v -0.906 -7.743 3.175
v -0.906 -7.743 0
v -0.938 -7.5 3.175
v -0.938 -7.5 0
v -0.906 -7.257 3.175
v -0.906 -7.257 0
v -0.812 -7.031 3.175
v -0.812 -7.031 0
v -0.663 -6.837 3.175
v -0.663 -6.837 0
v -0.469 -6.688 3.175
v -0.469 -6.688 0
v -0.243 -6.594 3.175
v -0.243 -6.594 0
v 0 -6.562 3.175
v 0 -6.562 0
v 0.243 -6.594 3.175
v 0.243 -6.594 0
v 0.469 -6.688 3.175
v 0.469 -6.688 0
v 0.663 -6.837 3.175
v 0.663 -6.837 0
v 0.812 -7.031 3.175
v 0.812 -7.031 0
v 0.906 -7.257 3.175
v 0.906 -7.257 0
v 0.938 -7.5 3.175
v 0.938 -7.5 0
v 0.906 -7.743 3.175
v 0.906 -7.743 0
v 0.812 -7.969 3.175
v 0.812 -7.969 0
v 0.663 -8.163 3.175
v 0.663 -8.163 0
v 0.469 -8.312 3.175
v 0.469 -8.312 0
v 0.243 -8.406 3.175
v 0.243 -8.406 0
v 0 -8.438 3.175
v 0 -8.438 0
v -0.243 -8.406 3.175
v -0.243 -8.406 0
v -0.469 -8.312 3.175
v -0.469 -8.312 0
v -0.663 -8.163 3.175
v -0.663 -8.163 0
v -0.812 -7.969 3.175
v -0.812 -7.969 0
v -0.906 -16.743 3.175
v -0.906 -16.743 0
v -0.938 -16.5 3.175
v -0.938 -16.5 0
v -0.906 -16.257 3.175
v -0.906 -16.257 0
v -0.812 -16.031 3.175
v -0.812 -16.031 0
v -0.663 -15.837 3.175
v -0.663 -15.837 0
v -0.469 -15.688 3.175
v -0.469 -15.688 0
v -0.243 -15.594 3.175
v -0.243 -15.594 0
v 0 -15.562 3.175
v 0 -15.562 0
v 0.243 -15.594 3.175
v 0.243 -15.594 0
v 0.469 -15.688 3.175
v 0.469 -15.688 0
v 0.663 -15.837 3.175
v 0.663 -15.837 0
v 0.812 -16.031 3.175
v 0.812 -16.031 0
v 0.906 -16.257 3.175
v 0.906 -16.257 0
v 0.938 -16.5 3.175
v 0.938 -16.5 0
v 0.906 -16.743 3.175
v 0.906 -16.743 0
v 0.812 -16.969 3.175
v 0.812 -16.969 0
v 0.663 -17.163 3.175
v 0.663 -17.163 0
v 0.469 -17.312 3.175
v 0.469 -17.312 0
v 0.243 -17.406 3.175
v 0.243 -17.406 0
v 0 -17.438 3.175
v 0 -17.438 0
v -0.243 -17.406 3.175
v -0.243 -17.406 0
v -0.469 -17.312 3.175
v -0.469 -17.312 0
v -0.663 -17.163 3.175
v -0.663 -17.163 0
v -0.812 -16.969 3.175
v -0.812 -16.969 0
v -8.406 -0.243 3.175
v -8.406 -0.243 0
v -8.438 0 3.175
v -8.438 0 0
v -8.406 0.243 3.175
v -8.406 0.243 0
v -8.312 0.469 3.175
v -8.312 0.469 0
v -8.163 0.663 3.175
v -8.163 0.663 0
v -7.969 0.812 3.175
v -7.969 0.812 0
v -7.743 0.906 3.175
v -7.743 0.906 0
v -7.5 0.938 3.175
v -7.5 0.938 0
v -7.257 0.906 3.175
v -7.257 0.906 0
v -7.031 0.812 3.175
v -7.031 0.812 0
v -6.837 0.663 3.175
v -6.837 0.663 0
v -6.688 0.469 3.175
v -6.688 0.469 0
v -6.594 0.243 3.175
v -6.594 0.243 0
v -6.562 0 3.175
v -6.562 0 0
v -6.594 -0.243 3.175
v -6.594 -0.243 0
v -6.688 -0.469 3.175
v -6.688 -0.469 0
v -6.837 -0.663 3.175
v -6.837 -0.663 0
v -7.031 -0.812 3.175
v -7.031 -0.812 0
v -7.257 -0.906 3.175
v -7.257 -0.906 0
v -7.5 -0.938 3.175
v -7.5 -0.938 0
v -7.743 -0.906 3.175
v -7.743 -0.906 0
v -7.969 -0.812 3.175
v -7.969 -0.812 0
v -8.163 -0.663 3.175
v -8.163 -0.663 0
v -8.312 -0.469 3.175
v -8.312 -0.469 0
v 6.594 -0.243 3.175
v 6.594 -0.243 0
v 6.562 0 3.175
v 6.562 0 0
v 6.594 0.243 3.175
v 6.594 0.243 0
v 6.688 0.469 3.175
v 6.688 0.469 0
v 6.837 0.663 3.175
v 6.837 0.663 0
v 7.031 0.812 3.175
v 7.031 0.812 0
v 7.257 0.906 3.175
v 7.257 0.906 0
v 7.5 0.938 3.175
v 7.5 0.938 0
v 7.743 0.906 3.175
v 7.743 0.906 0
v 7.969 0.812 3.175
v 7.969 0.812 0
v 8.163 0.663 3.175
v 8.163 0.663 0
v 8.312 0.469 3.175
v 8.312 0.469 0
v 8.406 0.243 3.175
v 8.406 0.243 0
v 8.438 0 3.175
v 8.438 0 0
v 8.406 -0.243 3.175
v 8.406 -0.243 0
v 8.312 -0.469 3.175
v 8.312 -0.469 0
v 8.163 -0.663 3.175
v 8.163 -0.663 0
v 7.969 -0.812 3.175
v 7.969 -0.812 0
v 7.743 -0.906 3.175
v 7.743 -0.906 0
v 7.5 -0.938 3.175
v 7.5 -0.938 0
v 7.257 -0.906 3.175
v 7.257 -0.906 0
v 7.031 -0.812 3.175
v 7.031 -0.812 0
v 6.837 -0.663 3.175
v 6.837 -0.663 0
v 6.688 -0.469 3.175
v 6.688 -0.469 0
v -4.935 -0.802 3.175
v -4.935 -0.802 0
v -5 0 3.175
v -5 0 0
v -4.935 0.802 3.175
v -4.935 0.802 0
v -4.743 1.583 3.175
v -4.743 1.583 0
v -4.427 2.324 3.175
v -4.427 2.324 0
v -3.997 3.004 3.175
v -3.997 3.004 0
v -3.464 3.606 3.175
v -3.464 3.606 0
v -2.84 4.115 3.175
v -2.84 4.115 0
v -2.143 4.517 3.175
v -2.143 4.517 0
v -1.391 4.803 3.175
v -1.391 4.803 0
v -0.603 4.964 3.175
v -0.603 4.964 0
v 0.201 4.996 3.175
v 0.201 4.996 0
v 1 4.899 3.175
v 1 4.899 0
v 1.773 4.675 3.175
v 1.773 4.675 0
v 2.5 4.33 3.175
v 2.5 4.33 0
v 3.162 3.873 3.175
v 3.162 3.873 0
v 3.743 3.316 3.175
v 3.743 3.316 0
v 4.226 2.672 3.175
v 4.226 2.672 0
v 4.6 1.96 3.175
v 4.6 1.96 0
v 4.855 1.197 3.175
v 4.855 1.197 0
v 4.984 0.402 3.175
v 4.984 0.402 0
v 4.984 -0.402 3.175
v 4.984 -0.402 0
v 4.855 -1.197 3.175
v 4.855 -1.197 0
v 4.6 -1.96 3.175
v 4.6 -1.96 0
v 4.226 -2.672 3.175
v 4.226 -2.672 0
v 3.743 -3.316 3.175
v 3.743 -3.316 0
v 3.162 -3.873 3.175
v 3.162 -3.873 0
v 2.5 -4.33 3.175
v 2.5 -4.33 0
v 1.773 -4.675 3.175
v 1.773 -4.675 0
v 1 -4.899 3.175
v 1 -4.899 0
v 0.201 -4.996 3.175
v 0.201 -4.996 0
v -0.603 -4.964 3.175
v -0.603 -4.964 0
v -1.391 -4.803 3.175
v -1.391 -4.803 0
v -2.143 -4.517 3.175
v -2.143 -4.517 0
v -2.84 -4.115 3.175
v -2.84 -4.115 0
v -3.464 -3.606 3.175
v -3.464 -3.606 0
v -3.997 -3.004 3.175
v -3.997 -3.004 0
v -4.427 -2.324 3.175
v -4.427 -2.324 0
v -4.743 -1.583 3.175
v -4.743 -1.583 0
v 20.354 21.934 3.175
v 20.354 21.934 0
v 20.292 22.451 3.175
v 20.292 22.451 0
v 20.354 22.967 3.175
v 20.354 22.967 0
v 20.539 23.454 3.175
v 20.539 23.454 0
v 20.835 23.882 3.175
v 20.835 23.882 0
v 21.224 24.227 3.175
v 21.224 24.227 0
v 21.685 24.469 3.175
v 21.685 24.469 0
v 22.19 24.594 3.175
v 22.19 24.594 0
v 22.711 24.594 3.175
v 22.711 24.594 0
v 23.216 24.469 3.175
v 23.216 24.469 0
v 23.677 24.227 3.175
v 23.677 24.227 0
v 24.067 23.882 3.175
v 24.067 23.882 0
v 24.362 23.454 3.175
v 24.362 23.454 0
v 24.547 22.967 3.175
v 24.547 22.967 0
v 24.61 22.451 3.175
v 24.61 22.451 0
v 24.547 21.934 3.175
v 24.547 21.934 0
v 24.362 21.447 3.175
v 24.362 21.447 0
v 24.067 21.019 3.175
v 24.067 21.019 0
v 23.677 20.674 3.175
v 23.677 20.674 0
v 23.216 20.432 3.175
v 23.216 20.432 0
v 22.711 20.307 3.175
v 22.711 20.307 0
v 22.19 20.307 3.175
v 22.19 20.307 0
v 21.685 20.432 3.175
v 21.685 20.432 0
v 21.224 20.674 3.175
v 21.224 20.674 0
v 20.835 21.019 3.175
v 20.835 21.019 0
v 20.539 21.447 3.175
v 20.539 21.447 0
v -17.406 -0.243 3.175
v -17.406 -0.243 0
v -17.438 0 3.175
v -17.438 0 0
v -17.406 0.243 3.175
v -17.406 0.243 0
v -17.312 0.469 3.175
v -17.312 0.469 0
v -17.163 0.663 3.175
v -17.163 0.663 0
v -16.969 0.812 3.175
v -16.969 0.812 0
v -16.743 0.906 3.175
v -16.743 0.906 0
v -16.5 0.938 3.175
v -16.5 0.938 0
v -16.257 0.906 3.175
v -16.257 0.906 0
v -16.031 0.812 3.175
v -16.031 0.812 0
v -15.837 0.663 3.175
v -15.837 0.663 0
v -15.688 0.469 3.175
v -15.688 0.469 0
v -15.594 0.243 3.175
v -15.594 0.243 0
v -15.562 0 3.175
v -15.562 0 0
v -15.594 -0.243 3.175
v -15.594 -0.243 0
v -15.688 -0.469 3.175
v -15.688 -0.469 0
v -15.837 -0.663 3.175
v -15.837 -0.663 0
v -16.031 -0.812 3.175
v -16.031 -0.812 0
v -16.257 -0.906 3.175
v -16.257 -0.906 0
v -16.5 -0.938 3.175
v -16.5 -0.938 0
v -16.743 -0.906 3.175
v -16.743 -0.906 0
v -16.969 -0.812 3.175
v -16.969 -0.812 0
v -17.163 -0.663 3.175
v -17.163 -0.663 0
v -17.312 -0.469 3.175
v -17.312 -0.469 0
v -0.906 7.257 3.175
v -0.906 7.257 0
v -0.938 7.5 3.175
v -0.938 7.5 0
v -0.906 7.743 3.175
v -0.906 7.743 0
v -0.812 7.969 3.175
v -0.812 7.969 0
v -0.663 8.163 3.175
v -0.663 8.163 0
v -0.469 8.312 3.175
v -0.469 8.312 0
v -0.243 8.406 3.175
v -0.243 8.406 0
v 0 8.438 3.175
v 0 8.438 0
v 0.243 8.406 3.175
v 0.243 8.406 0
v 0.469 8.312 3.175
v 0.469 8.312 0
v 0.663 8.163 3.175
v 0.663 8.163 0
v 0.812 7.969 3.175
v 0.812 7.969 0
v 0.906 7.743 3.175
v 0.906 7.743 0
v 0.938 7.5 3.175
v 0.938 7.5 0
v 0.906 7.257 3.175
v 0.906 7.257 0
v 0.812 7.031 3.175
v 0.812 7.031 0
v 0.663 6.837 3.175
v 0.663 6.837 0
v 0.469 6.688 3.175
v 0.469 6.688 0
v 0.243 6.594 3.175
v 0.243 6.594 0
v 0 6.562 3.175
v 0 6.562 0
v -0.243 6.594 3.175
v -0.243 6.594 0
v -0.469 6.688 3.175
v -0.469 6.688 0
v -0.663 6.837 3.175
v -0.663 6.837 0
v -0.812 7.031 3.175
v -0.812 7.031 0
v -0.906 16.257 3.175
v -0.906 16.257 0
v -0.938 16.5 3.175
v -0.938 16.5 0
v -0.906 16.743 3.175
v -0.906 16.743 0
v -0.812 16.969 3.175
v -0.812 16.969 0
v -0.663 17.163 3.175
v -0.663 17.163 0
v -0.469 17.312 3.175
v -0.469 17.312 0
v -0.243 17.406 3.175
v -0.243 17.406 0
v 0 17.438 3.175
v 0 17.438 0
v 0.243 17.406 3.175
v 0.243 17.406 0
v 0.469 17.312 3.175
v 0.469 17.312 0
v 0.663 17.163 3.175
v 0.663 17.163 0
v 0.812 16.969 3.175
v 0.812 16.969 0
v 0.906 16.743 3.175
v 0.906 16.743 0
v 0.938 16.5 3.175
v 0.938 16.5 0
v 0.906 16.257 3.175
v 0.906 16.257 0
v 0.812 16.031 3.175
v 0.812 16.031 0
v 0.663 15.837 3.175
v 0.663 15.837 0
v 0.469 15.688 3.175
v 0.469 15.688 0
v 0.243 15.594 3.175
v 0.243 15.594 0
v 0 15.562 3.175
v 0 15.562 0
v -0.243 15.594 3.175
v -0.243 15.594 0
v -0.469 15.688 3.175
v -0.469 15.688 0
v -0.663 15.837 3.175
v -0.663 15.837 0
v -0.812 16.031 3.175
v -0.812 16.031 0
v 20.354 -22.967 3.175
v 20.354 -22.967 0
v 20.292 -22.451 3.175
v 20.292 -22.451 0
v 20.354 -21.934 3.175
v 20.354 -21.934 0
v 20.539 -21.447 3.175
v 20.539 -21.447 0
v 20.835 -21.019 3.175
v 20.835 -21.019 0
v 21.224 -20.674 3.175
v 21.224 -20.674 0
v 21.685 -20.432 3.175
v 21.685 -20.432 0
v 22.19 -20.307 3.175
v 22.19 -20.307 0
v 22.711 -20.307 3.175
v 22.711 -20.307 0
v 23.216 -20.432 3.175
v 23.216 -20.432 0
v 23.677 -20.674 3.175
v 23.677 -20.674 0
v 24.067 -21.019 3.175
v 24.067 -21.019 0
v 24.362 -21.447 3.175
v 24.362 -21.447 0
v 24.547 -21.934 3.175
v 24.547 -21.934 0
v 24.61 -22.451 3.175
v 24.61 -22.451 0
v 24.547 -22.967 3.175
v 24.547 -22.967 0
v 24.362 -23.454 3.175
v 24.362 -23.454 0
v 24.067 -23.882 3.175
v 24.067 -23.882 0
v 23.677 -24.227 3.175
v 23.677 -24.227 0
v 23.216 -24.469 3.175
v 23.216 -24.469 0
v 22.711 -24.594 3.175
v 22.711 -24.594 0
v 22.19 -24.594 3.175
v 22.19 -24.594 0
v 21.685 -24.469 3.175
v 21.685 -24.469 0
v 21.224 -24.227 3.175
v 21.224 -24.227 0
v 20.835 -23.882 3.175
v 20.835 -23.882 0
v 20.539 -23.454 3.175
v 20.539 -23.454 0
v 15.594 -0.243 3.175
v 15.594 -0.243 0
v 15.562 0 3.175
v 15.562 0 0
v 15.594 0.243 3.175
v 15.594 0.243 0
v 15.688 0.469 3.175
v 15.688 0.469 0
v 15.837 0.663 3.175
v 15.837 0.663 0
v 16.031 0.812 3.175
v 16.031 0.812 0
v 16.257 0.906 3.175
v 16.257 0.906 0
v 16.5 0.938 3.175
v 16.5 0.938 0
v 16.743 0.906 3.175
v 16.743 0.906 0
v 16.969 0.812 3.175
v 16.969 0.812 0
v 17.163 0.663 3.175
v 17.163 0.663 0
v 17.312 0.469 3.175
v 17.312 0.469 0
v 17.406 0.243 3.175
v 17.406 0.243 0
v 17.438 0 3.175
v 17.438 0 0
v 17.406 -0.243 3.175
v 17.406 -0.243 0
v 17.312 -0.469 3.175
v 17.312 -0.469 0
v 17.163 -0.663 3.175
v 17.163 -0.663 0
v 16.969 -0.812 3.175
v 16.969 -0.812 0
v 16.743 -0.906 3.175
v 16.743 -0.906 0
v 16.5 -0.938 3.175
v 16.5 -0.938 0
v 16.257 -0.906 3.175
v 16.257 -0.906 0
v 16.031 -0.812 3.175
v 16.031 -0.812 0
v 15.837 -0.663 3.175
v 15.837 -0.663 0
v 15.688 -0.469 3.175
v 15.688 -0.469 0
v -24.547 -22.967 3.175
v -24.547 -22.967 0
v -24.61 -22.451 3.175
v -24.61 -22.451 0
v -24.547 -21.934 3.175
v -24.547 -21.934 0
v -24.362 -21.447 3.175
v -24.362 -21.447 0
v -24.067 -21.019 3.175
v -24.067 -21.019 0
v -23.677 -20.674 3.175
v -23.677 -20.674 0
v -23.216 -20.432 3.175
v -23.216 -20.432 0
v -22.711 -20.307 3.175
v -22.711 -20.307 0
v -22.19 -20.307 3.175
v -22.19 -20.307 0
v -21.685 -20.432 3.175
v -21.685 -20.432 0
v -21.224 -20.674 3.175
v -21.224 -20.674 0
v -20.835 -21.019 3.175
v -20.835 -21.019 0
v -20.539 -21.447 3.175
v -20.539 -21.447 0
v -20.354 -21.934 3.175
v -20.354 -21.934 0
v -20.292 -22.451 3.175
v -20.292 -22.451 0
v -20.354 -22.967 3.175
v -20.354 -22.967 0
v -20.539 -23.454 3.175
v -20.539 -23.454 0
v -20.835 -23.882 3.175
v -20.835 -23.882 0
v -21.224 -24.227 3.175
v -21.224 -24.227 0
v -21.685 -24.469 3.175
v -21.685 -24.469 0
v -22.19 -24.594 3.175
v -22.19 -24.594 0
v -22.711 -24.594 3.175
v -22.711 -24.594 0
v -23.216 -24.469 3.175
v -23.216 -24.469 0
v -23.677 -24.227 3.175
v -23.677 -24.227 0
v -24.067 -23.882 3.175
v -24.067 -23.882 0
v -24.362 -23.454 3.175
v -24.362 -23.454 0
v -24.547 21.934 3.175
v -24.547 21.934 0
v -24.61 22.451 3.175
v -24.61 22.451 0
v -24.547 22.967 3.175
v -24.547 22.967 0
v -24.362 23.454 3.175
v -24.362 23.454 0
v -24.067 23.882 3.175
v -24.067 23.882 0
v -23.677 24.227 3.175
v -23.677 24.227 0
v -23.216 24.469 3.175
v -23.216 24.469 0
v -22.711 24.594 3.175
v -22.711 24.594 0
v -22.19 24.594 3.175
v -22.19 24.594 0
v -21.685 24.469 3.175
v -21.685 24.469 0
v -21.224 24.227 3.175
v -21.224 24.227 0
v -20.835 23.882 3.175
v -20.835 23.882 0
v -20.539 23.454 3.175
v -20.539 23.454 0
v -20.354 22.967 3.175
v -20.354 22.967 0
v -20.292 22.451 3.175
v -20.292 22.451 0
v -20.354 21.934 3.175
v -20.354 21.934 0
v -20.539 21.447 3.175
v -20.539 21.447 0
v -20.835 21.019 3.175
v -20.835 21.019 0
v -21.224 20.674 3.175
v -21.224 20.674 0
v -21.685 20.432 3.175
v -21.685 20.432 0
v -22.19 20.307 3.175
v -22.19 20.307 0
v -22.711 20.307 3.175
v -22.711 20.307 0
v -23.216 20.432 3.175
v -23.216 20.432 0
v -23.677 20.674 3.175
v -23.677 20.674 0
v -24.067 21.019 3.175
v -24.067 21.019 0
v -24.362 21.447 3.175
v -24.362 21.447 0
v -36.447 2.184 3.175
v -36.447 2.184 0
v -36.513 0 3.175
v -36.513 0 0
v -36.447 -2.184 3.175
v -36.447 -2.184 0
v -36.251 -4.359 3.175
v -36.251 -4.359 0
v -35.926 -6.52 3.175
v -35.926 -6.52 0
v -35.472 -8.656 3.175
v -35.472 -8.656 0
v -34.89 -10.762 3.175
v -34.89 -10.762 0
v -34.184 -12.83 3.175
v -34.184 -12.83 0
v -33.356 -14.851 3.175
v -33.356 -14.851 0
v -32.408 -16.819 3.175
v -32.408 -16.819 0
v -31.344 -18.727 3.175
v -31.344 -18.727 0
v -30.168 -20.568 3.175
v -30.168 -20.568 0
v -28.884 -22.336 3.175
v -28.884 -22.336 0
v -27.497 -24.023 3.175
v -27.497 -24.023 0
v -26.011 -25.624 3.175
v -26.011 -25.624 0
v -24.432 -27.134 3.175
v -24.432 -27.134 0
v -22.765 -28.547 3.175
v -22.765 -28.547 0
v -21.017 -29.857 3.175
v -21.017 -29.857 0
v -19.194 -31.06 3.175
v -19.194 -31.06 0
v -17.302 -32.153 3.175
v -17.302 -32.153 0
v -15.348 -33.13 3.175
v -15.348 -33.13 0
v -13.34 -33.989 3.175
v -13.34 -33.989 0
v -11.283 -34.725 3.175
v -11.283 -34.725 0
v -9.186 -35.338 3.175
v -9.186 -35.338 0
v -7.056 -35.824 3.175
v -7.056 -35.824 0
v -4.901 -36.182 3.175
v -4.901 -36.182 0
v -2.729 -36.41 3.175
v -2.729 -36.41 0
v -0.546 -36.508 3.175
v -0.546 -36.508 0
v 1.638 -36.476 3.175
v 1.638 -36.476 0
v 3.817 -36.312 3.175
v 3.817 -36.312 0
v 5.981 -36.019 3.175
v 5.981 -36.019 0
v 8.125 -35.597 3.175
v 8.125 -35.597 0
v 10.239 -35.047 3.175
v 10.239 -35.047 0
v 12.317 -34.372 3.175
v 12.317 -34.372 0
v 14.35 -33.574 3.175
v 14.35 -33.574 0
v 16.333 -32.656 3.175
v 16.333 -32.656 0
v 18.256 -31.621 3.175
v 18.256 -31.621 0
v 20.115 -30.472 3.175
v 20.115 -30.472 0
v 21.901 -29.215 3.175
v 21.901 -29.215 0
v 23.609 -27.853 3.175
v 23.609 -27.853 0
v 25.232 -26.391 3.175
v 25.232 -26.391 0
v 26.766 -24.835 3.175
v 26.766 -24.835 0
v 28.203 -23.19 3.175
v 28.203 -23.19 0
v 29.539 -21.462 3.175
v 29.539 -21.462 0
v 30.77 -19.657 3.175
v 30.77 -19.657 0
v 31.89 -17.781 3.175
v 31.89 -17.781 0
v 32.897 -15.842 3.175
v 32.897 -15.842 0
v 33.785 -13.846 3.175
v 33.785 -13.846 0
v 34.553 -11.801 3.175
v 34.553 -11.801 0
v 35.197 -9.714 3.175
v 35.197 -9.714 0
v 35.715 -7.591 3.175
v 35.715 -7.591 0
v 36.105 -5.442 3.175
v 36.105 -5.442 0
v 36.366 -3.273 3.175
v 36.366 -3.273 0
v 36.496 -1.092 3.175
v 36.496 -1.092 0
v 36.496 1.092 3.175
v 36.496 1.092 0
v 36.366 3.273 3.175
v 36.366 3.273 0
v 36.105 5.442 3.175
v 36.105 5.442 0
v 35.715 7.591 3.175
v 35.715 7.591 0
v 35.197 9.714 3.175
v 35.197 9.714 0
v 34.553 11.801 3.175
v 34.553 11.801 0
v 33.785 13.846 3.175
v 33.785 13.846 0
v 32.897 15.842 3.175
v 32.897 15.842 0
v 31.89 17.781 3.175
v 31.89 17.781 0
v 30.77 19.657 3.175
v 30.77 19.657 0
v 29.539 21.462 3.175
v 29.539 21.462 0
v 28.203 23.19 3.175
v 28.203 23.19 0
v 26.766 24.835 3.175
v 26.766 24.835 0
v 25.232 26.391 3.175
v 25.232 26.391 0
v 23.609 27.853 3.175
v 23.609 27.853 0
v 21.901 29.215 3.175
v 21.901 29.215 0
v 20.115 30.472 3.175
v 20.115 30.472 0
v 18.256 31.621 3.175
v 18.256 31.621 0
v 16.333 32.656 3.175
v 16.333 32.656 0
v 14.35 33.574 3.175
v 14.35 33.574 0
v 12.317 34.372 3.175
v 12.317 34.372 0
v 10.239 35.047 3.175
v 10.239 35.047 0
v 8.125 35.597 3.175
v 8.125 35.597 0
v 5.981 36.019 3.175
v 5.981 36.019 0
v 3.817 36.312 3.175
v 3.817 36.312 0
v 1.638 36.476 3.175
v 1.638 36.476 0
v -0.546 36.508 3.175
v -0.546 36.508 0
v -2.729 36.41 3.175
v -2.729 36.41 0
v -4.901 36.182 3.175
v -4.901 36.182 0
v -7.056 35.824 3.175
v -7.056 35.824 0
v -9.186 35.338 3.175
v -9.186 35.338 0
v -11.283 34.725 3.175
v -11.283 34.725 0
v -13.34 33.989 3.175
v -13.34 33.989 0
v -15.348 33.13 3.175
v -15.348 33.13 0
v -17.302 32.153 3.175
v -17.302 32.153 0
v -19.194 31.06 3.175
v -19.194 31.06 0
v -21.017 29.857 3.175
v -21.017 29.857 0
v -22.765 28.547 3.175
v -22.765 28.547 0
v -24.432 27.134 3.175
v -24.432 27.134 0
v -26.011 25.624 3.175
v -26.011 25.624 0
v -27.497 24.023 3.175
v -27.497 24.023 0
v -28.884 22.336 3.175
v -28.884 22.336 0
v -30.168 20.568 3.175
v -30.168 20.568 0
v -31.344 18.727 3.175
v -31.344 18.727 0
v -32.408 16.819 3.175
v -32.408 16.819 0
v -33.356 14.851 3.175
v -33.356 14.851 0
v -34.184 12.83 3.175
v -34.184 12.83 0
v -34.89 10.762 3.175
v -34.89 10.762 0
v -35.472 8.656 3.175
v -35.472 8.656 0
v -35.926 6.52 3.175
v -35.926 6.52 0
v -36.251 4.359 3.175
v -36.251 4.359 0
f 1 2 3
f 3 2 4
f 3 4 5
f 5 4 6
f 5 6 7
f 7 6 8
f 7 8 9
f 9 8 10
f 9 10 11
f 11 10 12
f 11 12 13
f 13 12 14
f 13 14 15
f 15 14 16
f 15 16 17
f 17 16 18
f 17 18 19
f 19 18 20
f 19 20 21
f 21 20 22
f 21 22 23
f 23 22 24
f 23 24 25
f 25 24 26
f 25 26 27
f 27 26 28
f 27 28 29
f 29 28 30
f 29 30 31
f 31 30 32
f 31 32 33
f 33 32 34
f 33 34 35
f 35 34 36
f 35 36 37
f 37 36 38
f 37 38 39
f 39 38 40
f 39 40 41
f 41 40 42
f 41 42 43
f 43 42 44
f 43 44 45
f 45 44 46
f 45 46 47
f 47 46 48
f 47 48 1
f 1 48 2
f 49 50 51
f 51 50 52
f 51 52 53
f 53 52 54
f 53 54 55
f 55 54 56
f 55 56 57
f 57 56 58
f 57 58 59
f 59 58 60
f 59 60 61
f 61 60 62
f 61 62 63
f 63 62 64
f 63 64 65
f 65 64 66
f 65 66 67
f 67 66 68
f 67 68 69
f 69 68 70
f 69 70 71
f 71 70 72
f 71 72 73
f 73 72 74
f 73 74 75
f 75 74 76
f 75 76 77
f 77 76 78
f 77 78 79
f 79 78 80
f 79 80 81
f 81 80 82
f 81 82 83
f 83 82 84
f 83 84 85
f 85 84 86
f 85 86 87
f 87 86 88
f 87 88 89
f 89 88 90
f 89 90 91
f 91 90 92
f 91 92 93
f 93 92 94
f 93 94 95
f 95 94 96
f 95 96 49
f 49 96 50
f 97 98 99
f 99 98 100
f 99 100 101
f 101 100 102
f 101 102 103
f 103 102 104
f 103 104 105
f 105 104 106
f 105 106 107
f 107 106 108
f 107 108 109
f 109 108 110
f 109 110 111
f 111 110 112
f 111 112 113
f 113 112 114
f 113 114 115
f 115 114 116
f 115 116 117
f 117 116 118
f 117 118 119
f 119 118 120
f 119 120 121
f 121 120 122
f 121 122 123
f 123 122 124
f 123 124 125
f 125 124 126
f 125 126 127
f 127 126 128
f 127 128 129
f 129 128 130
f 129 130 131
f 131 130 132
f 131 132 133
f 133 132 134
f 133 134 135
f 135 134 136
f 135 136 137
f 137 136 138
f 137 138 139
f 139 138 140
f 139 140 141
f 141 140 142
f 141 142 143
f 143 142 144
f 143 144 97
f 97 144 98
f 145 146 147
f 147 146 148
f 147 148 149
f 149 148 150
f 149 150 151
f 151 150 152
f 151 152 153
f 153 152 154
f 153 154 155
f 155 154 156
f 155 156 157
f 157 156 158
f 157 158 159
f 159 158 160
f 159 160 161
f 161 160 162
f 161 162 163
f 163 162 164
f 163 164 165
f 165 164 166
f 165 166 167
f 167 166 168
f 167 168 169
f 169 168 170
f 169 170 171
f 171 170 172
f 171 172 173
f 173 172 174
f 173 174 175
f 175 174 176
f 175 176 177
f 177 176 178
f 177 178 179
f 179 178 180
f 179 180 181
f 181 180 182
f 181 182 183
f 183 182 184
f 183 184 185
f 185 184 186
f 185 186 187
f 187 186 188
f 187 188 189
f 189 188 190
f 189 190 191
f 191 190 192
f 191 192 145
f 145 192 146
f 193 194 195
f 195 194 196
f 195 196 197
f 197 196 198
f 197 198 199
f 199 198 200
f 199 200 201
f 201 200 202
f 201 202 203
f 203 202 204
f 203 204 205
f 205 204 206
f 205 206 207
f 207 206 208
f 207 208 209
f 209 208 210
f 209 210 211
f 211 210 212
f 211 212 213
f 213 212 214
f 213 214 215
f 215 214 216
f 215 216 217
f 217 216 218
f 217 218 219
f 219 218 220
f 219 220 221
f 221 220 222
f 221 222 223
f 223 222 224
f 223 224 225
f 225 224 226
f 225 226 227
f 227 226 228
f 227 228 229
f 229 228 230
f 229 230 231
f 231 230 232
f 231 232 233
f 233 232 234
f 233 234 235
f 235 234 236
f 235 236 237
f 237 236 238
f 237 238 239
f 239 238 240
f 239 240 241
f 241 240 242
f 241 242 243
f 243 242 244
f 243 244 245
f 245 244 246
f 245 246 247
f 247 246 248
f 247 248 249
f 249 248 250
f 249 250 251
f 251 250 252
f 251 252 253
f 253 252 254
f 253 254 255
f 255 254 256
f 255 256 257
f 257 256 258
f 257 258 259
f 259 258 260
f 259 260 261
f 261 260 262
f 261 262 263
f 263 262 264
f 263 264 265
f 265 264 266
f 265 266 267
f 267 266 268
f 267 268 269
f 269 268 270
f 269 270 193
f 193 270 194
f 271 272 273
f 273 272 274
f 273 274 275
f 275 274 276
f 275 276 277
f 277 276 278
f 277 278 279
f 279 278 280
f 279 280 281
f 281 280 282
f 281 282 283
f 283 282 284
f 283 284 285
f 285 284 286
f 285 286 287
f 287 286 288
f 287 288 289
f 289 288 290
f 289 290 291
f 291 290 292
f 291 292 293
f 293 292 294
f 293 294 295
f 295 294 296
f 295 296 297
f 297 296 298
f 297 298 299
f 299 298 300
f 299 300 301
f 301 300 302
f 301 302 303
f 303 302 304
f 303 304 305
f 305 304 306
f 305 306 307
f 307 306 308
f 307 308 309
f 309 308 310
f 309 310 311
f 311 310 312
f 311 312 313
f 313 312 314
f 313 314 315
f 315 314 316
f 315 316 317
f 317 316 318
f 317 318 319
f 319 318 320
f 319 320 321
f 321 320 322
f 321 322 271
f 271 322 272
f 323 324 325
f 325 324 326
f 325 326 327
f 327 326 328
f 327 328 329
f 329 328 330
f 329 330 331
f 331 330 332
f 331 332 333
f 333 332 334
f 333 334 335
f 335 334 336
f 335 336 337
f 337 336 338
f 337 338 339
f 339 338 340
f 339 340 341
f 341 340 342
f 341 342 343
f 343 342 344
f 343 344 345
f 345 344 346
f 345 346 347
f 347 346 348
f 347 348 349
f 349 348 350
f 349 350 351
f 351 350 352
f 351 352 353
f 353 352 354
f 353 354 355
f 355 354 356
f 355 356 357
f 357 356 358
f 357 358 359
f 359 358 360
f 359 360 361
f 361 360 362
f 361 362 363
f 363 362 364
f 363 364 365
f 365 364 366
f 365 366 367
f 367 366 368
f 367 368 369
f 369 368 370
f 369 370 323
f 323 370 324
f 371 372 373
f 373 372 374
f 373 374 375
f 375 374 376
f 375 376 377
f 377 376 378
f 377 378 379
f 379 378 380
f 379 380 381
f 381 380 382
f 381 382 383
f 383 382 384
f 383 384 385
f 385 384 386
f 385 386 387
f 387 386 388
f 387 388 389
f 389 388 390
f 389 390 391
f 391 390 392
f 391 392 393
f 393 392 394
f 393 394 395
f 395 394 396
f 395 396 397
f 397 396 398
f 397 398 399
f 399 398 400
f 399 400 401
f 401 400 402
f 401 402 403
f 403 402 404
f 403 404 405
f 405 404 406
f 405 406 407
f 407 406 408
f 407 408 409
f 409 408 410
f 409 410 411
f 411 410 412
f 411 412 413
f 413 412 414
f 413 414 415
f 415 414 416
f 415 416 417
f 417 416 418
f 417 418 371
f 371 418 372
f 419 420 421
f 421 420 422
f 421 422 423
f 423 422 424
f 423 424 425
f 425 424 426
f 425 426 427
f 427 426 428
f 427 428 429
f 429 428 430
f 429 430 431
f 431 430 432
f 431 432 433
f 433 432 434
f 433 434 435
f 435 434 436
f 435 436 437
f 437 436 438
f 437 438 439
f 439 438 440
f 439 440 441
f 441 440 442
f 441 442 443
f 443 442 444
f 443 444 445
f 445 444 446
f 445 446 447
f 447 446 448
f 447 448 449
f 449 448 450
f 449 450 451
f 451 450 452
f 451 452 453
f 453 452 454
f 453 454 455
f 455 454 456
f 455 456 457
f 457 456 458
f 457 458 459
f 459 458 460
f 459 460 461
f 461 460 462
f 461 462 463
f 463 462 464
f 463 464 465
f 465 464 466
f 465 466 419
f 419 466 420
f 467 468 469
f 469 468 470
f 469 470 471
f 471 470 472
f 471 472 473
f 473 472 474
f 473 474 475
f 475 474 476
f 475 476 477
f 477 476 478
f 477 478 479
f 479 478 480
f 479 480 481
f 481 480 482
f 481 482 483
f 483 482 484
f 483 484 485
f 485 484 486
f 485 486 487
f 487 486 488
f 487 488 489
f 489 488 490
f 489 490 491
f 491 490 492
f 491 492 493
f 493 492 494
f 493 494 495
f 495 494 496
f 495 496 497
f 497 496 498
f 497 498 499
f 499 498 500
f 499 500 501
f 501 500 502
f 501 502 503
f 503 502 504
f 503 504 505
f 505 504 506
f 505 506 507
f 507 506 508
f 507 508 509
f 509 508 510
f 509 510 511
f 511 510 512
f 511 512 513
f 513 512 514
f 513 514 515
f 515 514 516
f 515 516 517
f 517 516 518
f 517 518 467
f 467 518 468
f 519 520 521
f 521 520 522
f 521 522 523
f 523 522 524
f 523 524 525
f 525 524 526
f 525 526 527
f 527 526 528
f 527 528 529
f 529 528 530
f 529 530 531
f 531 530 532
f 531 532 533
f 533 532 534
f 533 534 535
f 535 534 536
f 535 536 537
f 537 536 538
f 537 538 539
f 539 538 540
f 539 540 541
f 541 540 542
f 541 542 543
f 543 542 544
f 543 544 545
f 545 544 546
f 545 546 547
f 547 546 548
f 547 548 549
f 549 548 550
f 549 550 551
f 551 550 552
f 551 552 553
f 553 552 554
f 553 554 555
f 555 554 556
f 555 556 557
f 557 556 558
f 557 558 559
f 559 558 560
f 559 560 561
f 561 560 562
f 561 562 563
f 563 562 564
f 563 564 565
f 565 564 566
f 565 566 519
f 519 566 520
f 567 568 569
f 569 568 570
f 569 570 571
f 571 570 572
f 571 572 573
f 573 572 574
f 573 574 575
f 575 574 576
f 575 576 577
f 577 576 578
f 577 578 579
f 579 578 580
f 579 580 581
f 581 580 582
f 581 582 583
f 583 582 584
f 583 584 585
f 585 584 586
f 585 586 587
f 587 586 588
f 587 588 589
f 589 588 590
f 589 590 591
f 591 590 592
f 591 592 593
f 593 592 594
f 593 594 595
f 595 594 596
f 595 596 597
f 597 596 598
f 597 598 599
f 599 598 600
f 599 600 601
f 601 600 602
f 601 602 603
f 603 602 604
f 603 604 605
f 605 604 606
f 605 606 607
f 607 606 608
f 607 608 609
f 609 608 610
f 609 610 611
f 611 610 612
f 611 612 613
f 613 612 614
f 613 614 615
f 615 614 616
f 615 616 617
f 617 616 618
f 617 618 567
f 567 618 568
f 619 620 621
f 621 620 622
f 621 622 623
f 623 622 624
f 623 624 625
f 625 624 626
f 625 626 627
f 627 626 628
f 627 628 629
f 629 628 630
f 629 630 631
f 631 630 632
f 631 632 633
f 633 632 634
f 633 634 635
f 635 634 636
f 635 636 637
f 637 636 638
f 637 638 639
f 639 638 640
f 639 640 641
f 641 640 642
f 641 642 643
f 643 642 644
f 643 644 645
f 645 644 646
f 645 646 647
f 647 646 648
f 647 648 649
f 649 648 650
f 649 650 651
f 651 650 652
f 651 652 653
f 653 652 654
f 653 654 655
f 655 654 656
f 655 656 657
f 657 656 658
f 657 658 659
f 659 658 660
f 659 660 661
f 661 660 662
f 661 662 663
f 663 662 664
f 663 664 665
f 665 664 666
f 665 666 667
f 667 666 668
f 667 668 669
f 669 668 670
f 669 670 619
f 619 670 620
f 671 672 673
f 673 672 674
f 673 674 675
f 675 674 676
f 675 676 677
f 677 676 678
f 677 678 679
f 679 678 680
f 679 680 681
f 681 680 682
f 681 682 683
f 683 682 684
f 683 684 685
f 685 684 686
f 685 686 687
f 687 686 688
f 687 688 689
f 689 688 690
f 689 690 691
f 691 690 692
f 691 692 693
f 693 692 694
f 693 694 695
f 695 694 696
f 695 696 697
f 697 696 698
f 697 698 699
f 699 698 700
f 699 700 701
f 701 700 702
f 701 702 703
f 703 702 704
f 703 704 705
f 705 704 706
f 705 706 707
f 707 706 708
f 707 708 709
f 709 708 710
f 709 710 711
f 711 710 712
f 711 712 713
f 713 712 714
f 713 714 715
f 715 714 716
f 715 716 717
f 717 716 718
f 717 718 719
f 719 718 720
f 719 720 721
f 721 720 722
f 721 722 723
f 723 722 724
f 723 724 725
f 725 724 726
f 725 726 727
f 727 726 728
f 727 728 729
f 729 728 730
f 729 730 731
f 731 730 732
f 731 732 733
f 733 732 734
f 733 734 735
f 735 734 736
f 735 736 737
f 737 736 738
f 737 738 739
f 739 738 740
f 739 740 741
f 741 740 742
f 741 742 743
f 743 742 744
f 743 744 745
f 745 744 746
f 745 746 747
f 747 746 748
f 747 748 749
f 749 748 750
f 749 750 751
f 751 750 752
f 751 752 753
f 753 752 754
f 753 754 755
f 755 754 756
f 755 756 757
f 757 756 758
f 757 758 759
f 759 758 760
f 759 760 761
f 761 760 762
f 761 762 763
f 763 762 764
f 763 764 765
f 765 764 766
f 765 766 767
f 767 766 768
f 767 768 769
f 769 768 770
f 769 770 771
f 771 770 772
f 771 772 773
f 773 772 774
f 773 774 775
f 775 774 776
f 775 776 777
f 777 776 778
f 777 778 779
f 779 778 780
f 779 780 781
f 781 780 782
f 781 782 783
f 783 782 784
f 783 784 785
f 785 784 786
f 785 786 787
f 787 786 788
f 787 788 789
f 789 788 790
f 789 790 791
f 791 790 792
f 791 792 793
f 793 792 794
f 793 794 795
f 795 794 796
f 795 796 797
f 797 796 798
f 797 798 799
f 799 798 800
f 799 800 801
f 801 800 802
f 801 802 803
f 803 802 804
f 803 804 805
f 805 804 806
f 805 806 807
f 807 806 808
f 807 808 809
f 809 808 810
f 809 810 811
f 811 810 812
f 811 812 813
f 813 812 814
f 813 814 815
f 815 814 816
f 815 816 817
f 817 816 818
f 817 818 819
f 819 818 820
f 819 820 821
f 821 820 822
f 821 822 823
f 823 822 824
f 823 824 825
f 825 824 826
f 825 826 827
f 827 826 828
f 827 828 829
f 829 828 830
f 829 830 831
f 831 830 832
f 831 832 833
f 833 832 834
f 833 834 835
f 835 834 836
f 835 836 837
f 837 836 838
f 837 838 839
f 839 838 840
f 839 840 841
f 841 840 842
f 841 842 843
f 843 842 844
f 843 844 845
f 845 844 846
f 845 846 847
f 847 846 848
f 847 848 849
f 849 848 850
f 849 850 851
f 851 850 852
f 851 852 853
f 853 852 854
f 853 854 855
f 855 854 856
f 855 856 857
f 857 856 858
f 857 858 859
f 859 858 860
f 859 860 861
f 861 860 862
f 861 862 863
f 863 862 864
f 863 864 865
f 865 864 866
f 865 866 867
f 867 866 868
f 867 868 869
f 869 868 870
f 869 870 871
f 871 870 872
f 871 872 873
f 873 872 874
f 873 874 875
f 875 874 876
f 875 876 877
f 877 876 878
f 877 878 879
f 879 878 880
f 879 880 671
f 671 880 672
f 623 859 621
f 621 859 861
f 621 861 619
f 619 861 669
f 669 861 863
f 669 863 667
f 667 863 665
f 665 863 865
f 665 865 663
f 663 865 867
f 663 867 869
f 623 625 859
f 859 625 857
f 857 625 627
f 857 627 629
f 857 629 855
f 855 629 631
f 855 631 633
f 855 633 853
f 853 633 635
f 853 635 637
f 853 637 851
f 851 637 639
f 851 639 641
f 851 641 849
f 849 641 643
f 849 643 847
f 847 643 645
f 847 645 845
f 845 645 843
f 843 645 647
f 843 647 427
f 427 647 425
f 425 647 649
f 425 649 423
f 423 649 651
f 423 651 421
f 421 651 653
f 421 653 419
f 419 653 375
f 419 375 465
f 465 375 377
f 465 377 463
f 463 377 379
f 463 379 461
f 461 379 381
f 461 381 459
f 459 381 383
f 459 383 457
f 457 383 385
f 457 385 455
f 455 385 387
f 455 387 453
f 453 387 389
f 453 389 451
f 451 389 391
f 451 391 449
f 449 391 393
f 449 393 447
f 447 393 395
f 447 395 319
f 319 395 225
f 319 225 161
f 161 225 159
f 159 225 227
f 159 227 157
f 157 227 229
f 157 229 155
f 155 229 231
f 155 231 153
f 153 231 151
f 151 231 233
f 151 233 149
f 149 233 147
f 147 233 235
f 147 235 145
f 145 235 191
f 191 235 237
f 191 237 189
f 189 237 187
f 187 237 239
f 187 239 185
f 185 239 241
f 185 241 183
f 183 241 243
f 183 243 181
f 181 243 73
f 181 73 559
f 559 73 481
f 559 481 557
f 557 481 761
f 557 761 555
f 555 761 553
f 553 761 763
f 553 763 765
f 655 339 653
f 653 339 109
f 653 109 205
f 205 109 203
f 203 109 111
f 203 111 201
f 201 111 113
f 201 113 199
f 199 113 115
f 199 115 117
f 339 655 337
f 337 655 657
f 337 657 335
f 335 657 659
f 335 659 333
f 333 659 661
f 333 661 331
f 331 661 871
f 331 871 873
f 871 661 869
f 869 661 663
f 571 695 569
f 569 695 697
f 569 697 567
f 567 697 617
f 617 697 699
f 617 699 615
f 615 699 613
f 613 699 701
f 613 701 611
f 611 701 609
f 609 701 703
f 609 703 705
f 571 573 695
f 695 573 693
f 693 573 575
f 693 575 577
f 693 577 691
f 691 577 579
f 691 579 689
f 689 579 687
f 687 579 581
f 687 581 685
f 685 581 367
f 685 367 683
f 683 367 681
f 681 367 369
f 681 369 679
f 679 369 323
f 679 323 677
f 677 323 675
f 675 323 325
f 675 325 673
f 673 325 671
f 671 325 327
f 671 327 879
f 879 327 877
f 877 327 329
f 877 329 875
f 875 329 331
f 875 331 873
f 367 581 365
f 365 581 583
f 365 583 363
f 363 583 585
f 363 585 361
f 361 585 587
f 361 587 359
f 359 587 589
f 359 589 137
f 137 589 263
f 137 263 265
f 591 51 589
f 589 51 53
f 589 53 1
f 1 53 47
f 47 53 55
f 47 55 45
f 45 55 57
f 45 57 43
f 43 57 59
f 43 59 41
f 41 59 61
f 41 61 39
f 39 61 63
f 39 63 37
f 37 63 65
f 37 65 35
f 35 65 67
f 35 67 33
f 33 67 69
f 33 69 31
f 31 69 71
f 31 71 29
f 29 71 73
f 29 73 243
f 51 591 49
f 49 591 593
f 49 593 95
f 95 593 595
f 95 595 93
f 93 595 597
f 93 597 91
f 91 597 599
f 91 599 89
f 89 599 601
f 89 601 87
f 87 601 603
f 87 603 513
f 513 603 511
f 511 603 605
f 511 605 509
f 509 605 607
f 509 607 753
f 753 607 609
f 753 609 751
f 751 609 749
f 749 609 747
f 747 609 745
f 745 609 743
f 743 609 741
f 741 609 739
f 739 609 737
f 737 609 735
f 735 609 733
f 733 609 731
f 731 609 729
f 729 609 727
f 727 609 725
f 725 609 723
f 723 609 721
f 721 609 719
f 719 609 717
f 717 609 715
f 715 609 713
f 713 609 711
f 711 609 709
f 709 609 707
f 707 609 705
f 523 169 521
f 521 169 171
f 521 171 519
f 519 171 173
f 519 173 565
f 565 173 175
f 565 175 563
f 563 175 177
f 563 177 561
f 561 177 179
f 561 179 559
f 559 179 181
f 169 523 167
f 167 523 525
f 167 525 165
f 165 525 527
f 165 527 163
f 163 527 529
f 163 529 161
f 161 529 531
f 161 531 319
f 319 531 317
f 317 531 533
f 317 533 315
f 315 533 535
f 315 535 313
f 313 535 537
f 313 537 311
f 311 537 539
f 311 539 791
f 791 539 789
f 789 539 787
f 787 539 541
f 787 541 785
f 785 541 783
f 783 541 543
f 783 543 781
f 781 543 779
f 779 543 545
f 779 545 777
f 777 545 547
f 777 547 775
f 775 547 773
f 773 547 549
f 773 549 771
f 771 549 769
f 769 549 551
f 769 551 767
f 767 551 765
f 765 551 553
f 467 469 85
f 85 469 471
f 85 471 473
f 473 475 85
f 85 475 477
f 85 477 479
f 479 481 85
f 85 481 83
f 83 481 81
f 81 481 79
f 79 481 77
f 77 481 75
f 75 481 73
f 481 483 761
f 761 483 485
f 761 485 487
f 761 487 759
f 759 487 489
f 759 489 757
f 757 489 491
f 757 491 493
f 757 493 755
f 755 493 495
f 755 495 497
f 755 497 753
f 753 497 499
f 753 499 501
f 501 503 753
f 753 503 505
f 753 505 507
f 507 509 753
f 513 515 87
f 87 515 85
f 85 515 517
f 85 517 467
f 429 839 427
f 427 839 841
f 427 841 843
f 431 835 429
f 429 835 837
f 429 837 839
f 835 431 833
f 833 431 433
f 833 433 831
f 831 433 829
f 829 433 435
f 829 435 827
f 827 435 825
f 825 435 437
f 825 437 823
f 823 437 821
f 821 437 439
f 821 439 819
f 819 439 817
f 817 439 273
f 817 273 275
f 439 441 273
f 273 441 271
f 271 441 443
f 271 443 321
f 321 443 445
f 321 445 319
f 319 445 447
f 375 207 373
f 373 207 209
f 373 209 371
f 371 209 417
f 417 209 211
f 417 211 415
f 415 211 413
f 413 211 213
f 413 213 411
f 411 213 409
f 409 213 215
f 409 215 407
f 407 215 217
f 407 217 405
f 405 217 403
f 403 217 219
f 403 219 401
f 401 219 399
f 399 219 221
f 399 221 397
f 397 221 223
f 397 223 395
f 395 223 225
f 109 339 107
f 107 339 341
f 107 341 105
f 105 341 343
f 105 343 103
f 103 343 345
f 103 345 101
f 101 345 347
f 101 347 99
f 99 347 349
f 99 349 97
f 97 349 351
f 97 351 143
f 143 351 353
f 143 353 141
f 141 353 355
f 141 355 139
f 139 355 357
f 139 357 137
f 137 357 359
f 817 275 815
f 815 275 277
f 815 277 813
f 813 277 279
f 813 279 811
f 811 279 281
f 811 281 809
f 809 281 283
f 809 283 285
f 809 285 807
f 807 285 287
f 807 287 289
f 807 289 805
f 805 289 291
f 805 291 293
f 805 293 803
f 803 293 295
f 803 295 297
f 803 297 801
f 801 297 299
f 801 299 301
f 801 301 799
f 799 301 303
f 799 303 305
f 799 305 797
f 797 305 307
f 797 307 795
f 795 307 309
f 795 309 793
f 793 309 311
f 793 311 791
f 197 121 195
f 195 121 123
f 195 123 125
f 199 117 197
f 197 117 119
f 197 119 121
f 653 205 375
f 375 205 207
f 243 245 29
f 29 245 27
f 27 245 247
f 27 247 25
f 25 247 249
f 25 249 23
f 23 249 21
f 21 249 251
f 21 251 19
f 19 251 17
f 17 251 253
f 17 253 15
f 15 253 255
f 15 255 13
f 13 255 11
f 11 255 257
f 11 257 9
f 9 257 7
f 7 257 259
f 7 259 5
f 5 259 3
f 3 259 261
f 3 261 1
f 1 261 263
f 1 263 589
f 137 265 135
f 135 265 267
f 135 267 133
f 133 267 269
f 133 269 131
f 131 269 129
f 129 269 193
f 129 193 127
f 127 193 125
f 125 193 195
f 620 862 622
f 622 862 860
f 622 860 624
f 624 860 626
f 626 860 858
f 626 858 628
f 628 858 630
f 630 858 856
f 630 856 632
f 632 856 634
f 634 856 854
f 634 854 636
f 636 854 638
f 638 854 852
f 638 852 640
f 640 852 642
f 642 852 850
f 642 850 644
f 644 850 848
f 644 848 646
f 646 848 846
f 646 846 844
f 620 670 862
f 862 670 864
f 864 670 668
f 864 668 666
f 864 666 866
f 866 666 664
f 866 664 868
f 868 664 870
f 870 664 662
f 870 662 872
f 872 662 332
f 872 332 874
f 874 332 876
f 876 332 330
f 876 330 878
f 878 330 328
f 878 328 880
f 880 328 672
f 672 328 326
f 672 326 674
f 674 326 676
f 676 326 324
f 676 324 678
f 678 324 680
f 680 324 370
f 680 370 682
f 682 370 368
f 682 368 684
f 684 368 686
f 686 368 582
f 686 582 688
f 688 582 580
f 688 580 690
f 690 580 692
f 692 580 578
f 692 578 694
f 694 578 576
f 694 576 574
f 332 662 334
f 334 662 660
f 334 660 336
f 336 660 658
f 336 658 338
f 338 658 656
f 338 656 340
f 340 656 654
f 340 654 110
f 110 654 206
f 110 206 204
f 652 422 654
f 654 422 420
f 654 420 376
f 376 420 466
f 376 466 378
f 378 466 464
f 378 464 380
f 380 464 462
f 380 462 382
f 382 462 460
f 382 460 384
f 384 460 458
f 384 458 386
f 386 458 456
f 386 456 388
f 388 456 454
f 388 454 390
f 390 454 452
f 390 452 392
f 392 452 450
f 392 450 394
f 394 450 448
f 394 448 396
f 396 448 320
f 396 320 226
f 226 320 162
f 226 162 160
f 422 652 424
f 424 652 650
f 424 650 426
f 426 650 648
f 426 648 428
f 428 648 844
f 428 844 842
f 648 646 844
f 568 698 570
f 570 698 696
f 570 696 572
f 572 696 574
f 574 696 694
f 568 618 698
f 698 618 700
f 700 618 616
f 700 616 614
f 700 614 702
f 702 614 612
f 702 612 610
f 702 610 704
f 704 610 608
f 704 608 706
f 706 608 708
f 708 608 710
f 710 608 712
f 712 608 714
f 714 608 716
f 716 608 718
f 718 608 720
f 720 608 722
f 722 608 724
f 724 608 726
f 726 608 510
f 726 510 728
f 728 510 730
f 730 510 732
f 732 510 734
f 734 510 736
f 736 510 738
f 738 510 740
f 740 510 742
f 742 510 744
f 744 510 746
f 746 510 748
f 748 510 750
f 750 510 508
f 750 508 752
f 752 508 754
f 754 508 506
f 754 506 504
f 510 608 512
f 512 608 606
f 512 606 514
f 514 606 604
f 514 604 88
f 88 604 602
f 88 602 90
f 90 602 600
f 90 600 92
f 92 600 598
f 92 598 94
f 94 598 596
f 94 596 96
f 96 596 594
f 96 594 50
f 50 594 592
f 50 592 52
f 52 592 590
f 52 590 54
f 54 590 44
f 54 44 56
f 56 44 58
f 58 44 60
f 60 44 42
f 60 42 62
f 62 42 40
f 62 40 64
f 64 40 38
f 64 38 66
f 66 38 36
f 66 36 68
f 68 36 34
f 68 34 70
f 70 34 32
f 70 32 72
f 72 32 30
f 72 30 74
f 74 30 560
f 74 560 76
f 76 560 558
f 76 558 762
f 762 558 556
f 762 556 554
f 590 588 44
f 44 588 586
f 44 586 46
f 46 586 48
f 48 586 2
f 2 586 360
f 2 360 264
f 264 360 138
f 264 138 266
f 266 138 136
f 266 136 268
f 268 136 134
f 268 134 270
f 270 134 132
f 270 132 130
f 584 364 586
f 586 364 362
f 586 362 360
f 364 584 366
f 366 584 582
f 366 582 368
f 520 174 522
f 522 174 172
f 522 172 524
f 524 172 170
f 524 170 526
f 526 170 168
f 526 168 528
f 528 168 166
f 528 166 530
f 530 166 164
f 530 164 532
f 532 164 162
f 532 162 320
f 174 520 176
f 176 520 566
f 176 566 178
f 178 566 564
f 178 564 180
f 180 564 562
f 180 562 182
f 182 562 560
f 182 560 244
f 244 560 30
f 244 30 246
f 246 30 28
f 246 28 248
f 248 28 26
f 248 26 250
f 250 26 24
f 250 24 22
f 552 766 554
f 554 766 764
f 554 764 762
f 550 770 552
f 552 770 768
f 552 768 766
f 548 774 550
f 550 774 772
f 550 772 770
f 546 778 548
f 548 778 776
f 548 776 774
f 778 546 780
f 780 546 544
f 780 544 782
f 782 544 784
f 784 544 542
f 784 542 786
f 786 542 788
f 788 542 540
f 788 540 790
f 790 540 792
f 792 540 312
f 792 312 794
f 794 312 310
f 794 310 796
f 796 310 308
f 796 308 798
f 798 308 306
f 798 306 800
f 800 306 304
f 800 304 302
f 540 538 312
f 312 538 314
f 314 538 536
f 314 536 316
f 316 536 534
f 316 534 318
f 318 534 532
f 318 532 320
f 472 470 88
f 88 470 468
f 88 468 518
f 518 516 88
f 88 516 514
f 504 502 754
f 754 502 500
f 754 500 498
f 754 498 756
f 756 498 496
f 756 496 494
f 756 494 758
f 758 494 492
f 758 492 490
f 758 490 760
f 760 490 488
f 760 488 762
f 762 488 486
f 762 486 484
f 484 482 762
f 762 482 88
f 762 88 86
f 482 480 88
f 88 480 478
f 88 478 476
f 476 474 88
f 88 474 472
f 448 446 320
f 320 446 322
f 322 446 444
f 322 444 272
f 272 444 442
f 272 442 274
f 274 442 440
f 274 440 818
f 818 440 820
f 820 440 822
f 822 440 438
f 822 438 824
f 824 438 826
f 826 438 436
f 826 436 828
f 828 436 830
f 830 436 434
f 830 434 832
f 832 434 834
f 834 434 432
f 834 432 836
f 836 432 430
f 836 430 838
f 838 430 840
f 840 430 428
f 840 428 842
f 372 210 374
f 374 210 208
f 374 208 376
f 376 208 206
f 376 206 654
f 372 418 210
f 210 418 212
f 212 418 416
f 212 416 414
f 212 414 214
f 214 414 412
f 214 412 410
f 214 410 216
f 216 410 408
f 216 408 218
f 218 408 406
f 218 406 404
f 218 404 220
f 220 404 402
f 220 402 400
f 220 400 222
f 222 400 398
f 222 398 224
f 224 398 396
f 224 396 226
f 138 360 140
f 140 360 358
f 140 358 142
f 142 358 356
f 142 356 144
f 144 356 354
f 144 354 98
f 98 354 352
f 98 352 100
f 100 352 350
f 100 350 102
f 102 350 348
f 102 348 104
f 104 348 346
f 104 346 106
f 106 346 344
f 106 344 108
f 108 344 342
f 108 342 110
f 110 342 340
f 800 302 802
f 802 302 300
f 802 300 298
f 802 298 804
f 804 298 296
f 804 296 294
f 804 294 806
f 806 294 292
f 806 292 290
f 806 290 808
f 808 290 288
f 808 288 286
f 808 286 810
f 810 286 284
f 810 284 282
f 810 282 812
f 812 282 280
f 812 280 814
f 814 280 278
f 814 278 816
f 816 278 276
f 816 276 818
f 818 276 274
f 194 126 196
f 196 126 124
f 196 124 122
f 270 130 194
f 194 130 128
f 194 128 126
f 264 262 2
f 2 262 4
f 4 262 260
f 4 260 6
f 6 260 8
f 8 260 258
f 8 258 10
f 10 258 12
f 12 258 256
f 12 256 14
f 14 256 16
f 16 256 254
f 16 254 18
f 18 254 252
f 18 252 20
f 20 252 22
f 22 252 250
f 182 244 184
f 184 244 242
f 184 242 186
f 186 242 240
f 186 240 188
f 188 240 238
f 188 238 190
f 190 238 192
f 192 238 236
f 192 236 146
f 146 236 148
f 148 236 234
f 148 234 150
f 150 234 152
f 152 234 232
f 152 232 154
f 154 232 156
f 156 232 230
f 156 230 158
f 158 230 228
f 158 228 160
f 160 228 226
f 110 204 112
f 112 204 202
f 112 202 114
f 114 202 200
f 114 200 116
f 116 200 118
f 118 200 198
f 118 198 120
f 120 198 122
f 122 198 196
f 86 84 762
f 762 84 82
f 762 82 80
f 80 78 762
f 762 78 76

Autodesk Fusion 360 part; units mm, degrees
sketch "Sketch1" plane through (0, 0, 0) normal (0, 0, 1) x (1, 0, 0)
  circle A0 centre (0, 0) radius 7.5
  circle A1 centre (16.5, 0) radius 0.9375
  circle A2 centre (-16.5, 0) radius 0.9375
  circle A3 centre (0, -16.5) radius 0.9375
  circle A4 centre (0, 16.5) radius 0.9375
  line L0 (0, 0) -> (18.2563, 0) construction
  circle A5 centre (22.4506, 22.4506) radius 2.159
  circle A6 centre (22.4506, -22.4506) radius 2.159
  circle A7 centre (-22.4506, -22.4506) radius 2.159
  circle A8 centre (-22.4506, 22.4506) radius 2.159
  circle A9 centre (0, 0) radius 5
  circle A10 centre (0, 0) radius 36.5125
  line L1 (0, 0) -> (22.4506, 22.4506)
  line L2 (0, 0) -> (21.082, 0) construction
  line L3 (0, 0) -> (22.4506, -22.4506)
  line L4 (0, 0) -> (21.082, 0) construction
  line L5 (0, 0) -> (-22.4506, -22.4506)
  line L6 (0, 0) -> (21.082, 0) construction
  line L7 (0, 0) -> (-22.4506, 22.4506)
  line L8 (0, 0) -> (21.082, 0) construction
  arc A11 (-20.873, 23.9245) -> (20.873, 23.9245) centre (0, 0) ccw
  line L9 (16.5, 0) -> (10.5, 0)
  circle A12 centre (0, 0) radius 5.2451
  circle A13 centre (7.5, 0) radius 0.9375
  circle A14 centre (0, 7.5) radius 0.9375
  circle A15 centre (-7.5, 0) radius 0.9375
  circle A16 centre (0, -7.5) radius 0.9375
  dimension "d2" = 15
  dimension "d6" = 1.875
  dimension "d7" = 1.875
  dimension "d8" = 1.875
  dimension "d9" = 1.875
  dimension "d16" = 4.318
  dimension "d17" = 4.318
  dimension "d18" = 4.318
  dimension "d19" = 4.318
  dimension "d21" = 10
  dimension "d24" = 73.025
  dimension "d25" = 63.5
  dimension "d26" = 45
  dimension "d27" = 45
  dimension "d28" = 135
  dimension "d29" = 135
  dimension "d31" = 6
  dimension "d32" = 10.4902
  dimension "d33" = 1.875
  dimension "d35" = 360
extrude "Extrude1" add sketch "Sketch1" along normal blind 3.175 contours A0 L1 L3 A12 A13 | A0 A5 A6 L1 L3 A11 A13 | A0 L1 L7 A12 A14 | A0 A6 A7 L3 L5 A11 A16 | A0 L3 L5 A12 A16 | A9 L1 L3 A12 | A9 L1 L7 A12 | A9 L3 L5 A12 | A0 L5 L7 A12 A15 | A9 L5 L7 A12 | A0 A7 A8 L5 L7 A11 A15 | A10
equation "d22 = ( 1 / 8 ) * 1 in"
